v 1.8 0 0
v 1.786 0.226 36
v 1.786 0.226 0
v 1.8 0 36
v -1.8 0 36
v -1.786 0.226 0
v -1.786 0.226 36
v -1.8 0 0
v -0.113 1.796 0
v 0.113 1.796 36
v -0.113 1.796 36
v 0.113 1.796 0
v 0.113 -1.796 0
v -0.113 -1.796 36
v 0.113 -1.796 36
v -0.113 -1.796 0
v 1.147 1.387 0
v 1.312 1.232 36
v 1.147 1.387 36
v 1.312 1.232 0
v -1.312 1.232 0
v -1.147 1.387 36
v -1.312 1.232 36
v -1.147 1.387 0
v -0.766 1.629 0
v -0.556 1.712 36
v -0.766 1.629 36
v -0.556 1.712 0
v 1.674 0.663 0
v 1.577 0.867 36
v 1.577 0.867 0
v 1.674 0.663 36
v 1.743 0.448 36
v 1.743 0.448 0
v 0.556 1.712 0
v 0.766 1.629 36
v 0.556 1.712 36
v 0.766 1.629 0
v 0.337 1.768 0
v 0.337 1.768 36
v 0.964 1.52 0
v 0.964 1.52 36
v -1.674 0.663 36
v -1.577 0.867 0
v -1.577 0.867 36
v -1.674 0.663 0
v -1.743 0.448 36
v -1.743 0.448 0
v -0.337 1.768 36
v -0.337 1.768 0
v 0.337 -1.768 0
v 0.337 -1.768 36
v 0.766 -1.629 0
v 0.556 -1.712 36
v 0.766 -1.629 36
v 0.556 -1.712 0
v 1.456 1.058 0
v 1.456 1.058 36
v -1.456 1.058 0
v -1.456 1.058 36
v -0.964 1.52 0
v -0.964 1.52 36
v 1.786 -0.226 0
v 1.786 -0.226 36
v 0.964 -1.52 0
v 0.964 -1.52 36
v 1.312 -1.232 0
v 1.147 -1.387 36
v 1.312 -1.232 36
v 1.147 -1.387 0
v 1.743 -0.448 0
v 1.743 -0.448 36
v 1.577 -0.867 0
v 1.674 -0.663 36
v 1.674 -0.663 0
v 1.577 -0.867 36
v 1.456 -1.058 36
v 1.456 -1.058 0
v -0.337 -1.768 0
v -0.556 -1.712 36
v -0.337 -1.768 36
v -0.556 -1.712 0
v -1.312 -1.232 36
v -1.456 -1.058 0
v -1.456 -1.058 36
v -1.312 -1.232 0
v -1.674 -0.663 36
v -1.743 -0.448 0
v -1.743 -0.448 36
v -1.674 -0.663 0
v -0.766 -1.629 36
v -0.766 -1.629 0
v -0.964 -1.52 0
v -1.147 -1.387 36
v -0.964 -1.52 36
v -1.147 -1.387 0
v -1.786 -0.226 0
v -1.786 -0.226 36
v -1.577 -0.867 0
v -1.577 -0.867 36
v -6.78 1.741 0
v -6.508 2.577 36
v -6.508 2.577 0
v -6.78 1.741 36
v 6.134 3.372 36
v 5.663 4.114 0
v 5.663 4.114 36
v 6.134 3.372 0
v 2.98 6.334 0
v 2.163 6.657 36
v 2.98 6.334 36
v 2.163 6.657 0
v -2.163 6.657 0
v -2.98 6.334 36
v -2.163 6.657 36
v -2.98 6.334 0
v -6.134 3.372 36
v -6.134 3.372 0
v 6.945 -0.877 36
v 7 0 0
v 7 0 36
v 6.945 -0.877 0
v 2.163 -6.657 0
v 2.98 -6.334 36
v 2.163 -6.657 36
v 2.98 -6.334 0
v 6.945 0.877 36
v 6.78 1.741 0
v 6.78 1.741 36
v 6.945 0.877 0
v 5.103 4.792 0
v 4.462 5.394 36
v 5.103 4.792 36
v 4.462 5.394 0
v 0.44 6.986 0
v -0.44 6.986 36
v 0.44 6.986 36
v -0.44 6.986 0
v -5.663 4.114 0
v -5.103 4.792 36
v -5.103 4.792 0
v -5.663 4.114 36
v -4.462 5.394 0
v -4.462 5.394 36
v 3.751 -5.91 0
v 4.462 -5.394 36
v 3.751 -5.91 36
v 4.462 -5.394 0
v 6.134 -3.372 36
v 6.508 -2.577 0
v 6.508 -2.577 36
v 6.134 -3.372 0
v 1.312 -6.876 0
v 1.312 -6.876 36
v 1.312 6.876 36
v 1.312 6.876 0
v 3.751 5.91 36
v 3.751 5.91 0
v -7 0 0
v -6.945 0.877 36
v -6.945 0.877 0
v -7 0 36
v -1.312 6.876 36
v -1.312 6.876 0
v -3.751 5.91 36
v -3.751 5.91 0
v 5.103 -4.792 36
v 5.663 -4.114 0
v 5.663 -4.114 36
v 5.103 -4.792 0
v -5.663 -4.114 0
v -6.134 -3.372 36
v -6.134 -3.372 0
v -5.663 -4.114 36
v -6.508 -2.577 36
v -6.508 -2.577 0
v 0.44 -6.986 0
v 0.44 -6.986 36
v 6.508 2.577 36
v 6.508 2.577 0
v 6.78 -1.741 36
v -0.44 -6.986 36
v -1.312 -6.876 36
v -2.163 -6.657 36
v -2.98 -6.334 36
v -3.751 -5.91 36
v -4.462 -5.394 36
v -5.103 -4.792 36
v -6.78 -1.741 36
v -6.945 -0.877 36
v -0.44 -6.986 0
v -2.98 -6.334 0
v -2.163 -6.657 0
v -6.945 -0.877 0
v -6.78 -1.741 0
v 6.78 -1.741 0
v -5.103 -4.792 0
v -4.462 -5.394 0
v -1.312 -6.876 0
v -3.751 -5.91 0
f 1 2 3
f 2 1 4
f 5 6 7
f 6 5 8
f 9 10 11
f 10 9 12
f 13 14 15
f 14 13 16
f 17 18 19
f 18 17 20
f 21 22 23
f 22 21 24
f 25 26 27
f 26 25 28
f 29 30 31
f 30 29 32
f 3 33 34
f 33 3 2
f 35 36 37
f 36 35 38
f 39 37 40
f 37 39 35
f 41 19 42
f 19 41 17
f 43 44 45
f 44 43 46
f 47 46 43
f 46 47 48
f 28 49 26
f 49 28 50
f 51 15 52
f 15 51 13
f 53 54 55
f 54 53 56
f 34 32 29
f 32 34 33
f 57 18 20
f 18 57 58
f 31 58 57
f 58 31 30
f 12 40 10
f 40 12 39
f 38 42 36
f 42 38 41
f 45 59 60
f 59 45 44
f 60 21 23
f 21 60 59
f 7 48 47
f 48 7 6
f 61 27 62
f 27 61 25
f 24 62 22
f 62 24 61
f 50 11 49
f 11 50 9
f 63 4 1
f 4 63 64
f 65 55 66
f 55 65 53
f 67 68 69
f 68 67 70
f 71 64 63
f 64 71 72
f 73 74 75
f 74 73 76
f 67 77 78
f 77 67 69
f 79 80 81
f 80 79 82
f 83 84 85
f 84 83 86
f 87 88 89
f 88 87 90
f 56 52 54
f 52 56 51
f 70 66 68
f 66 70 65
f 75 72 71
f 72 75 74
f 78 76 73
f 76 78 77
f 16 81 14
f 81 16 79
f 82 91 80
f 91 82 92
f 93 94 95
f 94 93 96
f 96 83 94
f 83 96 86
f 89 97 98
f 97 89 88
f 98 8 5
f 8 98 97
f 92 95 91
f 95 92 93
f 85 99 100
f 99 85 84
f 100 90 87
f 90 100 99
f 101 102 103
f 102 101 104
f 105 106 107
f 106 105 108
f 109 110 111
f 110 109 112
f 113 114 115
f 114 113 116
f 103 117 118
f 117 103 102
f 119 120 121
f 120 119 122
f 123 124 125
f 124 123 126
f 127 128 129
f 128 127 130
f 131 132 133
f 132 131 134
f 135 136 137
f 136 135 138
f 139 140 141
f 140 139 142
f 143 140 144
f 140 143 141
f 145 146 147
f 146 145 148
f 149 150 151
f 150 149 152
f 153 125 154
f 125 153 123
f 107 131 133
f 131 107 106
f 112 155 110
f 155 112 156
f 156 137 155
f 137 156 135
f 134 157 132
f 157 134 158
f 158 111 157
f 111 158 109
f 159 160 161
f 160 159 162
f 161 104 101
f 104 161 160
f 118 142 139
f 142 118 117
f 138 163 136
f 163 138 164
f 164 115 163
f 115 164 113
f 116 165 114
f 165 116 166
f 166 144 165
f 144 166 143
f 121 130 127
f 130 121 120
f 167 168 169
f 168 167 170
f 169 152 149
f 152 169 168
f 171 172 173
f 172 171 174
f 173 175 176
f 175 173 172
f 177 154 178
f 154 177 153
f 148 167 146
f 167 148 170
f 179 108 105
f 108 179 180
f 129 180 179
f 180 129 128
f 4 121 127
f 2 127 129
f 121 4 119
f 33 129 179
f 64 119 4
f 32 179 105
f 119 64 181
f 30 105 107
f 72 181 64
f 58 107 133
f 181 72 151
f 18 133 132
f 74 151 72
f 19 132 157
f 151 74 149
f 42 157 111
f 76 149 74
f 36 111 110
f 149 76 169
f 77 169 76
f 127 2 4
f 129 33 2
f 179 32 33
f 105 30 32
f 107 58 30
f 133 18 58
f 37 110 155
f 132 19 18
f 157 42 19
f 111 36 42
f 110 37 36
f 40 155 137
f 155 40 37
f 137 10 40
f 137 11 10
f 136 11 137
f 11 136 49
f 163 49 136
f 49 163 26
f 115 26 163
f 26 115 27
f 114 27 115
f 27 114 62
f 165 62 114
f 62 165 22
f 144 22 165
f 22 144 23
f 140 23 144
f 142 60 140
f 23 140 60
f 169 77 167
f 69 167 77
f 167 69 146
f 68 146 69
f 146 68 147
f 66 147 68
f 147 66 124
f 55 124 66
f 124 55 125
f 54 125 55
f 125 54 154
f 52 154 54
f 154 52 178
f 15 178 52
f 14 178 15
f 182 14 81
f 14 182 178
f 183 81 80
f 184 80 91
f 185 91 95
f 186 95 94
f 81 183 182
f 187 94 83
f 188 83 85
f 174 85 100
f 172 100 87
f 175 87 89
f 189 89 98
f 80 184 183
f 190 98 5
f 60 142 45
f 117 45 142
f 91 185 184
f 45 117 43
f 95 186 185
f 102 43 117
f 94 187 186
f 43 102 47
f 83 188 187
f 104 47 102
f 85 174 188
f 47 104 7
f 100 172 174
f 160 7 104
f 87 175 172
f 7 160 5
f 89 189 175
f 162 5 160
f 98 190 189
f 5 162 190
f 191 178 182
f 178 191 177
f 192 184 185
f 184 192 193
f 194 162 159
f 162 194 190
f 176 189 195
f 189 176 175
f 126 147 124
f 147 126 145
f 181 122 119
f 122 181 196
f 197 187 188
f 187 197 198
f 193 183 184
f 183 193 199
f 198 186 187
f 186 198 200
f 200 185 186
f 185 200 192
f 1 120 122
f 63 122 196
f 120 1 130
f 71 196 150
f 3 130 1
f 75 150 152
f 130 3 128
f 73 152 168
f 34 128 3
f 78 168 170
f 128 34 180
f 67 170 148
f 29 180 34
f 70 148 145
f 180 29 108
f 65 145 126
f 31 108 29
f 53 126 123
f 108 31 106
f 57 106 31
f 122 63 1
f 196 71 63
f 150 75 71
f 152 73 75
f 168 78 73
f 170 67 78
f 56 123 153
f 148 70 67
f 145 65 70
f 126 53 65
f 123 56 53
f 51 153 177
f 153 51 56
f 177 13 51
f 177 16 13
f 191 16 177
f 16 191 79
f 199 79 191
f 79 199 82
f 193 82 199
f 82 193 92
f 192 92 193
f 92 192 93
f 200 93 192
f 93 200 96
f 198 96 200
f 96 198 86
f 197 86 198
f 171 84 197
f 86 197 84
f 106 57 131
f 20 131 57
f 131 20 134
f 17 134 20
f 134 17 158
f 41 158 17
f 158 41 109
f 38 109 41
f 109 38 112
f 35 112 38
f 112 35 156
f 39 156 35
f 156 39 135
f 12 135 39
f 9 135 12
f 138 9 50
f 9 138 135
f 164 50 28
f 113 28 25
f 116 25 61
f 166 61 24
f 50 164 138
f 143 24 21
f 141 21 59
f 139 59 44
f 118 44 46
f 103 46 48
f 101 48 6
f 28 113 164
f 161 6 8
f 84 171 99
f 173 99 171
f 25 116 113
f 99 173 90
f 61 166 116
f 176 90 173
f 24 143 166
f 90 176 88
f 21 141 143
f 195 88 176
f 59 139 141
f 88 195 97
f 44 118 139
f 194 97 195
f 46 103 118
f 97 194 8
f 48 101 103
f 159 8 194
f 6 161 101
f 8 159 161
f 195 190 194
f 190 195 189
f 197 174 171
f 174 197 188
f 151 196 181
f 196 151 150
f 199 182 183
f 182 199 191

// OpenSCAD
$fn = 50;


difference() {
	union() {
		cylinder(h = 36, r = 7.0000000000);
	}
	union() {
		translate(v = [0.0000000000, 0.0000000000, -100.0000000000]) {
			cylinder(h = 200, r = 1.8000000000);
		}
		cylinder(h = 36, r = 1.8000000000);
		cylinder(h = 36, r = 1.8000000000);
		cylinder(h = 36, r = 1.8000000000);
	}
}
